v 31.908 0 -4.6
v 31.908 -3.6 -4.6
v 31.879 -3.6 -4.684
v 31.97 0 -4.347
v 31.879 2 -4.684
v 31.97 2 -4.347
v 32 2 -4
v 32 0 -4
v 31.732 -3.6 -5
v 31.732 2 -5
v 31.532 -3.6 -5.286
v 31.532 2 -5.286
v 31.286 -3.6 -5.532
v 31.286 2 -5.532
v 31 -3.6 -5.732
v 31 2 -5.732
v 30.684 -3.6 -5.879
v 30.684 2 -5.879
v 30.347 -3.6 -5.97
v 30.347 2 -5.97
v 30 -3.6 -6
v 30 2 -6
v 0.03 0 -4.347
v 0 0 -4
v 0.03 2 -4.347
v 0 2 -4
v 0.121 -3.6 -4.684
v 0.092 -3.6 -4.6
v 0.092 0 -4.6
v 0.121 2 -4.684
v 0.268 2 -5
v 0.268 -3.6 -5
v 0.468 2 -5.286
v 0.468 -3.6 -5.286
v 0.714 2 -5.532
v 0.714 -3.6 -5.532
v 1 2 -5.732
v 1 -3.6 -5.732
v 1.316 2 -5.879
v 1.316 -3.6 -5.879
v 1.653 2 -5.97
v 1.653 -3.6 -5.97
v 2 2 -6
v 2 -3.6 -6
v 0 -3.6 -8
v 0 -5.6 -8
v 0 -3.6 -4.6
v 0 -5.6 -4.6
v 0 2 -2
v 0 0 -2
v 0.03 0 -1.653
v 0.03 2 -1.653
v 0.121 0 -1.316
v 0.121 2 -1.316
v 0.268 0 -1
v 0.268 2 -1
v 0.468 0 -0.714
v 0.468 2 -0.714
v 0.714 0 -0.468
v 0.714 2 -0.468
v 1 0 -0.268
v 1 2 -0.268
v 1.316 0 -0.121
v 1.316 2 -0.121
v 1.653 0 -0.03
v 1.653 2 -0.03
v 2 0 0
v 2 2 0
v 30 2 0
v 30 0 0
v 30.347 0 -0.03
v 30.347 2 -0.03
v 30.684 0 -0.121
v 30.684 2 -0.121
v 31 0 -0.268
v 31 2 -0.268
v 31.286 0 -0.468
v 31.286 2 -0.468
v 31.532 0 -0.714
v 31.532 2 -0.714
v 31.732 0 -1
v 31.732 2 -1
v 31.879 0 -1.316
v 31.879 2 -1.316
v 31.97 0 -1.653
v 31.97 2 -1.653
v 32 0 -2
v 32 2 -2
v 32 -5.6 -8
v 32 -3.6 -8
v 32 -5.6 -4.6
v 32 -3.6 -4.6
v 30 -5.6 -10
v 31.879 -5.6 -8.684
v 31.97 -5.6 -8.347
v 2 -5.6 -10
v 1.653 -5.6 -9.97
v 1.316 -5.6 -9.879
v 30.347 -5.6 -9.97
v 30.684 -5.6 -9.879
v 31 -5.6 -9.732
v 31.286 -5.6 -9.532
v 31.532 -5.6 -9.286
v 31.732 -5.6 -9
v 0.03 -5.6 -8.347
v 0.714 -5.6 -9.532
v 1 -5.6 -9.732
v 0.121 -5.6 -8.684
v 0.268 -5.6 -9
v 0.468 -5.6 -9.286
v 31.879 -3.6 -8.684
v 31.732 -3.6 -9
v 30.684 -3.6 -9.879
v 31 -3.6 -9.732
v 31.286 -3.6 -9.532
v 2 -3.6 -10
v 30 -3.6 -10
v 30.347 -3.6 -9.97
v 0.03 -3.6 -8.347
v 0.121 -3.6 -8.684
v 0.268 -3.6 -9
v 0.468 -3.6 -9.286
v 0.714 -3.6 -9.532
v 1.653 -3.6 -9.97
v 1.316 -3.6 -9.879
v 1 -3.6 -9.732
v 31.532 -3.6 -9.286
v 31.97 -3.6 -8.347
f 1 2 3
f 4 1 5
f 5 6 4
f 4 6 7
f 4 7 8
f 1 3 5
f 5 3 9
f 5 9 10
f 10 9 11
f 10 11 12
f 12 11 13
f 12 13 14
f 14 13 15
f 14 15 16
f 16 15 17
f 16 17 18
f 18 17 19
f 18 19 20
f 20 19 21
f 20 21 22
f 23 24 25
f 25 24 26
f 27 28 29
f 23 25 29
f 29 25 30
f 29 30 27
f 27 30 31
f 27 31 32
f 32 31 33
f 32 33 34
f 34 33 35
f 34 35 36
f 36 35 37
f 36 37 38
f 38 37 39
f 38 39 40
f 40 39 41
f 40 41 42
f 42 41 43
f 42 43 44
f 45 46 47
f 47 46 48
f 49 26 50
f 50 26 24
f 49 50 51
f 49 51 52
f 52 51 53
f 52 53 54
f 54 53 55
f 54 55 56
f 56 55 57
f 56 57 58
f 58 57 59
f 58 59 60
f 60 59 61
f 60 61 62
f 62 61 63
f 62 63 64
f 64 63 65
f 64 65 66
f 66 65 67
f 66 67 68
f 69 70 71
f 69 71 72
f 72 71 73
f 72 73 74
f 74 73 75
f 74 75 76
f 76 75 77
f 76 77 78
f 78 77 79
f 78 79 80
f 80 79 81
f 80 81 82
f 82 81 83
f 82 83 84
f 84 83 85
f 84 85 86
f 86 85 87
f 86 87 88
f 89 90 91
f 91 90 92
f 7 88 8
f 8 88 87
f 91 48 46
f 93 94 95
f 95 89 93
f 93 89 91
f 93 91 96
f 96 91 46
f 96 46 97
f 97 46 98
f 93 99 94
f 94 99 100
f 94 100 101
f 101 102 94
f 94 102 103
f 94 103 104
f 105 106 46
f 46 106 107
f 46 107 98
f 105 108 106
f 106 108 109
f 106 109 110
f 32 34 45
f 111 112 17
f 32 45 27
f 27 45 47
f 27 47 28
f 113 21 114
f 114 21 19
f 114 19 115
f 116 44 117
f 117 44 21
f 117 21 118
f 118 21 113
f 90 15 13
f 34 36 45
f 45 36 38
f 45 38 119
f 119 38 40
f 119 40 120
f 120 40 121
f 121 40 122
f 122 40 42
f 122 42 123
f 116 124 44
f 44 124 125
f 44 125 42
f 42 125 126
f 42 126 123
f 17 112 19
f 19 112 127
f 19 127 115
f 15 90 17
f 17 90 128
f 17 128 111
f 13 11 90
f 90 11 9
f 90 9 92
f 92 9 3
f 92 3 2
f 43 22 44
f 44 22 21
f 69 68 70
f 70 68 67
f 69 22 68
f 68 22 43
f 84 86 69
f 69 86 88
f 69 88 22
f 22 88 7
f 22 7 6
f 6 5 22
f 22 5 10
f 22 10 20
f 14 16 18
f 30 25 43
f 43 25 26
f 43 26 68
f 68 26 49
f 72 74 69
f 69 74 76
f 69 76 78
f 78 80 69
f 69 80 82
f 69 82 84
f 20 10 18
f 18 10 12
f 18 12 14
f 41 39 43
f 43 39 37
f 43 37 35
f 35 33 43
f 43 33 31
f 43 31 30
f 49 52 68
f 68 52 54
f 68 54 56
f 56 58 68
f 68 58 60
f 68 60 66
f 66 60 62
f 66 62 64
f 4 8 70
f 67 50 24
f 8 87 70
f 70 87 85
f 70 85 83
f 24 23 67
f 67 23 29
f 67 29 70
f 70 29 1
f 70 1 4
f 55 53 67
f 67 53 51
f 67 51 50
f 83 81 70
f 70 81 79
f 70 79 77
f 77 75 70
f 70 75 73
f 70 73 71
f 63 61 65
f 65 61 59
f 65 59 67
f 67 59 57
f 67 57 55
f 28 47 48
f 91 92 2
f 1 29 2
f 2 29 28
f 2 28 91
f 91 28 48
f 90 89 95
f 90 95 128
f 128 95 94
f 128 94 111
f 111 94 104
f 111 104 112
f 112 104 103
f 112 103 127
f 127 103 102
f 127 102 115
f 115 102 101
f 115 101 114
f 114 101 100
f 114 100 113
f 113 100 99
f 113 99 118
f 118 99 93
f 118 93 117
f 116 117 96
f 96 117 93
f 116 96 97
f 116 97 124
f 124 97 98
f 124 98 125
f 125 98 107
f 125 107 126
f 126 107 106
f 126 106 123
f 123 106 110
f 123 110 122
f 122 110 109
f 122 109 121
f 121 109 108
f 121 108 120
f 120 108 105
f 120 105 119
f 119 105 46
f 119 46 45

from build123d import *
from build123d.topology import SkipClean

# Parameters (mm, degrees)
BOSS_EXTRUDE1_DEPTH = 2
BOSS_EXTRUDE2_START = -7.6
BOSS_EXTRUDE2_DEPTH = 7.6
BOSS_EXTRUDE3_DEPTH = 2
SKETCH5_W           = 32
SKETCH5_H           = 4.6
CUT_EXTRUDE1_DEPTH  = 34.990586932


with BuildPart() as part:
    # Sketch1 → Boss-Extrude1 (new body)
    with BuildSketch(Plane(origin=(0, 0, 0), x_dir=(1, 0, 0), z_dir=(0, 1, 0))):
        with BuildLine():
            Line((2, 0), (30, 0))
            ThreePointArc((30, 0), (31.414213562, 0.585786438), (32, 2))
            Line((32, 2), (32, 4))
            ThreePointArc((32, 4), (31.414213562, 5.414213562), (30, 6))
            Line((30, 6), (2, 6))
            ThreePointArc((2, 6), (0.585786438, 5.414213562), (0, 4))
            Line((0, 4), (0, 2))
            ThreePointArc((0, 2), (0.585786438, 0.585786438), (2, 0))
        make_face()
    extrude(amount=BOSS_EXTRUDE1_DEPTH)

    # Sketch2 → Boss-Extrude2 (add)
    with SkipClean():  # the faces are left unmerged after this step: merging them gives an invalid solid
        with BuildSketch(Plane(origin=(0, 2, 0), x_dir=(1, 0, 0), z_dir=(0, 1, 0)).offset(BOSS_EXTRUDE2_START)):
            with BuildLine():
                Line((32, 4), (32, 2))
                ThreePointArc((32, 2), (31.449137675, 0.621595125), (30.1, 0.002501564))
                Line((30.1, 0.002501564), (30.1, 3.1))
                ThreePointArc((30.1, 3.1), (29.660660172, 4.160660172), (28.6, 4.6))
                Line((28.6, 4.6), (3.4, 4.6))
                ThreePointArc((3.4, 4.6), (2.339339828, 4.160660172), (1.9, 3.1))
                Line((1.9, 3.1), (1.9, 0.002501564))
                ThreePointArc((1.9, 0.002501564), (0.550862325, 0.621595125), (0, 2))
                Line((0, 2), (0, 4))
                ThreePointArc((0, 4), (0.585786438, 5.414213562), (2, 6))
                Line((2, 6), (30, 6))
                ThreePointArc((30, 6), (31.414213562, 5.414213562), (32, 4))
            make_face()
        extrude(amount=BOSS_EXTRUDE2_DEPTH)
    add(part.part.scale(1), mode=Mode.REPLACE)  # the faces are merged on a copy

    # Sketch4 → Boss-Extrude3 (add)
    with BuildSketch(Plane.XZ.offset(5.6)):
        with BuildLine():
            Line((30, -6), (2, -6))
            ThreePointArc((2, -6), (0.585786438, -5.414213562), (0, -4))
            Line((0, -4), (0, -8))
            ThreePointArc((0, -8), (0.585786438, -9.414213562), (2, -10))
            Line((2, -10), (30, -10))
            ThreePointArc((30, -10), (31.414213562, -9.414213562), (32, -8))
            Line((32, -8), (32, -4))
            ThreePointArc((32, -4), (31.414213562, -5.414213562), (30, -6))
        make_face()
    extrude(amount=-BOSS_EXTRUDE3_DEPTH)

    # Sketch5 → Cut-Extrude1 (cut, through all)
    with BuildSketch(Plane.XZ):
        with Locations((16, -2.3)):
            Rectangle(SKETCH5_W, SKETCH5_H)
    extrude(amount=CUT_EXTRUDE1_DEPTH, mode=Mode.SUBTRACT)


solid = part.part
